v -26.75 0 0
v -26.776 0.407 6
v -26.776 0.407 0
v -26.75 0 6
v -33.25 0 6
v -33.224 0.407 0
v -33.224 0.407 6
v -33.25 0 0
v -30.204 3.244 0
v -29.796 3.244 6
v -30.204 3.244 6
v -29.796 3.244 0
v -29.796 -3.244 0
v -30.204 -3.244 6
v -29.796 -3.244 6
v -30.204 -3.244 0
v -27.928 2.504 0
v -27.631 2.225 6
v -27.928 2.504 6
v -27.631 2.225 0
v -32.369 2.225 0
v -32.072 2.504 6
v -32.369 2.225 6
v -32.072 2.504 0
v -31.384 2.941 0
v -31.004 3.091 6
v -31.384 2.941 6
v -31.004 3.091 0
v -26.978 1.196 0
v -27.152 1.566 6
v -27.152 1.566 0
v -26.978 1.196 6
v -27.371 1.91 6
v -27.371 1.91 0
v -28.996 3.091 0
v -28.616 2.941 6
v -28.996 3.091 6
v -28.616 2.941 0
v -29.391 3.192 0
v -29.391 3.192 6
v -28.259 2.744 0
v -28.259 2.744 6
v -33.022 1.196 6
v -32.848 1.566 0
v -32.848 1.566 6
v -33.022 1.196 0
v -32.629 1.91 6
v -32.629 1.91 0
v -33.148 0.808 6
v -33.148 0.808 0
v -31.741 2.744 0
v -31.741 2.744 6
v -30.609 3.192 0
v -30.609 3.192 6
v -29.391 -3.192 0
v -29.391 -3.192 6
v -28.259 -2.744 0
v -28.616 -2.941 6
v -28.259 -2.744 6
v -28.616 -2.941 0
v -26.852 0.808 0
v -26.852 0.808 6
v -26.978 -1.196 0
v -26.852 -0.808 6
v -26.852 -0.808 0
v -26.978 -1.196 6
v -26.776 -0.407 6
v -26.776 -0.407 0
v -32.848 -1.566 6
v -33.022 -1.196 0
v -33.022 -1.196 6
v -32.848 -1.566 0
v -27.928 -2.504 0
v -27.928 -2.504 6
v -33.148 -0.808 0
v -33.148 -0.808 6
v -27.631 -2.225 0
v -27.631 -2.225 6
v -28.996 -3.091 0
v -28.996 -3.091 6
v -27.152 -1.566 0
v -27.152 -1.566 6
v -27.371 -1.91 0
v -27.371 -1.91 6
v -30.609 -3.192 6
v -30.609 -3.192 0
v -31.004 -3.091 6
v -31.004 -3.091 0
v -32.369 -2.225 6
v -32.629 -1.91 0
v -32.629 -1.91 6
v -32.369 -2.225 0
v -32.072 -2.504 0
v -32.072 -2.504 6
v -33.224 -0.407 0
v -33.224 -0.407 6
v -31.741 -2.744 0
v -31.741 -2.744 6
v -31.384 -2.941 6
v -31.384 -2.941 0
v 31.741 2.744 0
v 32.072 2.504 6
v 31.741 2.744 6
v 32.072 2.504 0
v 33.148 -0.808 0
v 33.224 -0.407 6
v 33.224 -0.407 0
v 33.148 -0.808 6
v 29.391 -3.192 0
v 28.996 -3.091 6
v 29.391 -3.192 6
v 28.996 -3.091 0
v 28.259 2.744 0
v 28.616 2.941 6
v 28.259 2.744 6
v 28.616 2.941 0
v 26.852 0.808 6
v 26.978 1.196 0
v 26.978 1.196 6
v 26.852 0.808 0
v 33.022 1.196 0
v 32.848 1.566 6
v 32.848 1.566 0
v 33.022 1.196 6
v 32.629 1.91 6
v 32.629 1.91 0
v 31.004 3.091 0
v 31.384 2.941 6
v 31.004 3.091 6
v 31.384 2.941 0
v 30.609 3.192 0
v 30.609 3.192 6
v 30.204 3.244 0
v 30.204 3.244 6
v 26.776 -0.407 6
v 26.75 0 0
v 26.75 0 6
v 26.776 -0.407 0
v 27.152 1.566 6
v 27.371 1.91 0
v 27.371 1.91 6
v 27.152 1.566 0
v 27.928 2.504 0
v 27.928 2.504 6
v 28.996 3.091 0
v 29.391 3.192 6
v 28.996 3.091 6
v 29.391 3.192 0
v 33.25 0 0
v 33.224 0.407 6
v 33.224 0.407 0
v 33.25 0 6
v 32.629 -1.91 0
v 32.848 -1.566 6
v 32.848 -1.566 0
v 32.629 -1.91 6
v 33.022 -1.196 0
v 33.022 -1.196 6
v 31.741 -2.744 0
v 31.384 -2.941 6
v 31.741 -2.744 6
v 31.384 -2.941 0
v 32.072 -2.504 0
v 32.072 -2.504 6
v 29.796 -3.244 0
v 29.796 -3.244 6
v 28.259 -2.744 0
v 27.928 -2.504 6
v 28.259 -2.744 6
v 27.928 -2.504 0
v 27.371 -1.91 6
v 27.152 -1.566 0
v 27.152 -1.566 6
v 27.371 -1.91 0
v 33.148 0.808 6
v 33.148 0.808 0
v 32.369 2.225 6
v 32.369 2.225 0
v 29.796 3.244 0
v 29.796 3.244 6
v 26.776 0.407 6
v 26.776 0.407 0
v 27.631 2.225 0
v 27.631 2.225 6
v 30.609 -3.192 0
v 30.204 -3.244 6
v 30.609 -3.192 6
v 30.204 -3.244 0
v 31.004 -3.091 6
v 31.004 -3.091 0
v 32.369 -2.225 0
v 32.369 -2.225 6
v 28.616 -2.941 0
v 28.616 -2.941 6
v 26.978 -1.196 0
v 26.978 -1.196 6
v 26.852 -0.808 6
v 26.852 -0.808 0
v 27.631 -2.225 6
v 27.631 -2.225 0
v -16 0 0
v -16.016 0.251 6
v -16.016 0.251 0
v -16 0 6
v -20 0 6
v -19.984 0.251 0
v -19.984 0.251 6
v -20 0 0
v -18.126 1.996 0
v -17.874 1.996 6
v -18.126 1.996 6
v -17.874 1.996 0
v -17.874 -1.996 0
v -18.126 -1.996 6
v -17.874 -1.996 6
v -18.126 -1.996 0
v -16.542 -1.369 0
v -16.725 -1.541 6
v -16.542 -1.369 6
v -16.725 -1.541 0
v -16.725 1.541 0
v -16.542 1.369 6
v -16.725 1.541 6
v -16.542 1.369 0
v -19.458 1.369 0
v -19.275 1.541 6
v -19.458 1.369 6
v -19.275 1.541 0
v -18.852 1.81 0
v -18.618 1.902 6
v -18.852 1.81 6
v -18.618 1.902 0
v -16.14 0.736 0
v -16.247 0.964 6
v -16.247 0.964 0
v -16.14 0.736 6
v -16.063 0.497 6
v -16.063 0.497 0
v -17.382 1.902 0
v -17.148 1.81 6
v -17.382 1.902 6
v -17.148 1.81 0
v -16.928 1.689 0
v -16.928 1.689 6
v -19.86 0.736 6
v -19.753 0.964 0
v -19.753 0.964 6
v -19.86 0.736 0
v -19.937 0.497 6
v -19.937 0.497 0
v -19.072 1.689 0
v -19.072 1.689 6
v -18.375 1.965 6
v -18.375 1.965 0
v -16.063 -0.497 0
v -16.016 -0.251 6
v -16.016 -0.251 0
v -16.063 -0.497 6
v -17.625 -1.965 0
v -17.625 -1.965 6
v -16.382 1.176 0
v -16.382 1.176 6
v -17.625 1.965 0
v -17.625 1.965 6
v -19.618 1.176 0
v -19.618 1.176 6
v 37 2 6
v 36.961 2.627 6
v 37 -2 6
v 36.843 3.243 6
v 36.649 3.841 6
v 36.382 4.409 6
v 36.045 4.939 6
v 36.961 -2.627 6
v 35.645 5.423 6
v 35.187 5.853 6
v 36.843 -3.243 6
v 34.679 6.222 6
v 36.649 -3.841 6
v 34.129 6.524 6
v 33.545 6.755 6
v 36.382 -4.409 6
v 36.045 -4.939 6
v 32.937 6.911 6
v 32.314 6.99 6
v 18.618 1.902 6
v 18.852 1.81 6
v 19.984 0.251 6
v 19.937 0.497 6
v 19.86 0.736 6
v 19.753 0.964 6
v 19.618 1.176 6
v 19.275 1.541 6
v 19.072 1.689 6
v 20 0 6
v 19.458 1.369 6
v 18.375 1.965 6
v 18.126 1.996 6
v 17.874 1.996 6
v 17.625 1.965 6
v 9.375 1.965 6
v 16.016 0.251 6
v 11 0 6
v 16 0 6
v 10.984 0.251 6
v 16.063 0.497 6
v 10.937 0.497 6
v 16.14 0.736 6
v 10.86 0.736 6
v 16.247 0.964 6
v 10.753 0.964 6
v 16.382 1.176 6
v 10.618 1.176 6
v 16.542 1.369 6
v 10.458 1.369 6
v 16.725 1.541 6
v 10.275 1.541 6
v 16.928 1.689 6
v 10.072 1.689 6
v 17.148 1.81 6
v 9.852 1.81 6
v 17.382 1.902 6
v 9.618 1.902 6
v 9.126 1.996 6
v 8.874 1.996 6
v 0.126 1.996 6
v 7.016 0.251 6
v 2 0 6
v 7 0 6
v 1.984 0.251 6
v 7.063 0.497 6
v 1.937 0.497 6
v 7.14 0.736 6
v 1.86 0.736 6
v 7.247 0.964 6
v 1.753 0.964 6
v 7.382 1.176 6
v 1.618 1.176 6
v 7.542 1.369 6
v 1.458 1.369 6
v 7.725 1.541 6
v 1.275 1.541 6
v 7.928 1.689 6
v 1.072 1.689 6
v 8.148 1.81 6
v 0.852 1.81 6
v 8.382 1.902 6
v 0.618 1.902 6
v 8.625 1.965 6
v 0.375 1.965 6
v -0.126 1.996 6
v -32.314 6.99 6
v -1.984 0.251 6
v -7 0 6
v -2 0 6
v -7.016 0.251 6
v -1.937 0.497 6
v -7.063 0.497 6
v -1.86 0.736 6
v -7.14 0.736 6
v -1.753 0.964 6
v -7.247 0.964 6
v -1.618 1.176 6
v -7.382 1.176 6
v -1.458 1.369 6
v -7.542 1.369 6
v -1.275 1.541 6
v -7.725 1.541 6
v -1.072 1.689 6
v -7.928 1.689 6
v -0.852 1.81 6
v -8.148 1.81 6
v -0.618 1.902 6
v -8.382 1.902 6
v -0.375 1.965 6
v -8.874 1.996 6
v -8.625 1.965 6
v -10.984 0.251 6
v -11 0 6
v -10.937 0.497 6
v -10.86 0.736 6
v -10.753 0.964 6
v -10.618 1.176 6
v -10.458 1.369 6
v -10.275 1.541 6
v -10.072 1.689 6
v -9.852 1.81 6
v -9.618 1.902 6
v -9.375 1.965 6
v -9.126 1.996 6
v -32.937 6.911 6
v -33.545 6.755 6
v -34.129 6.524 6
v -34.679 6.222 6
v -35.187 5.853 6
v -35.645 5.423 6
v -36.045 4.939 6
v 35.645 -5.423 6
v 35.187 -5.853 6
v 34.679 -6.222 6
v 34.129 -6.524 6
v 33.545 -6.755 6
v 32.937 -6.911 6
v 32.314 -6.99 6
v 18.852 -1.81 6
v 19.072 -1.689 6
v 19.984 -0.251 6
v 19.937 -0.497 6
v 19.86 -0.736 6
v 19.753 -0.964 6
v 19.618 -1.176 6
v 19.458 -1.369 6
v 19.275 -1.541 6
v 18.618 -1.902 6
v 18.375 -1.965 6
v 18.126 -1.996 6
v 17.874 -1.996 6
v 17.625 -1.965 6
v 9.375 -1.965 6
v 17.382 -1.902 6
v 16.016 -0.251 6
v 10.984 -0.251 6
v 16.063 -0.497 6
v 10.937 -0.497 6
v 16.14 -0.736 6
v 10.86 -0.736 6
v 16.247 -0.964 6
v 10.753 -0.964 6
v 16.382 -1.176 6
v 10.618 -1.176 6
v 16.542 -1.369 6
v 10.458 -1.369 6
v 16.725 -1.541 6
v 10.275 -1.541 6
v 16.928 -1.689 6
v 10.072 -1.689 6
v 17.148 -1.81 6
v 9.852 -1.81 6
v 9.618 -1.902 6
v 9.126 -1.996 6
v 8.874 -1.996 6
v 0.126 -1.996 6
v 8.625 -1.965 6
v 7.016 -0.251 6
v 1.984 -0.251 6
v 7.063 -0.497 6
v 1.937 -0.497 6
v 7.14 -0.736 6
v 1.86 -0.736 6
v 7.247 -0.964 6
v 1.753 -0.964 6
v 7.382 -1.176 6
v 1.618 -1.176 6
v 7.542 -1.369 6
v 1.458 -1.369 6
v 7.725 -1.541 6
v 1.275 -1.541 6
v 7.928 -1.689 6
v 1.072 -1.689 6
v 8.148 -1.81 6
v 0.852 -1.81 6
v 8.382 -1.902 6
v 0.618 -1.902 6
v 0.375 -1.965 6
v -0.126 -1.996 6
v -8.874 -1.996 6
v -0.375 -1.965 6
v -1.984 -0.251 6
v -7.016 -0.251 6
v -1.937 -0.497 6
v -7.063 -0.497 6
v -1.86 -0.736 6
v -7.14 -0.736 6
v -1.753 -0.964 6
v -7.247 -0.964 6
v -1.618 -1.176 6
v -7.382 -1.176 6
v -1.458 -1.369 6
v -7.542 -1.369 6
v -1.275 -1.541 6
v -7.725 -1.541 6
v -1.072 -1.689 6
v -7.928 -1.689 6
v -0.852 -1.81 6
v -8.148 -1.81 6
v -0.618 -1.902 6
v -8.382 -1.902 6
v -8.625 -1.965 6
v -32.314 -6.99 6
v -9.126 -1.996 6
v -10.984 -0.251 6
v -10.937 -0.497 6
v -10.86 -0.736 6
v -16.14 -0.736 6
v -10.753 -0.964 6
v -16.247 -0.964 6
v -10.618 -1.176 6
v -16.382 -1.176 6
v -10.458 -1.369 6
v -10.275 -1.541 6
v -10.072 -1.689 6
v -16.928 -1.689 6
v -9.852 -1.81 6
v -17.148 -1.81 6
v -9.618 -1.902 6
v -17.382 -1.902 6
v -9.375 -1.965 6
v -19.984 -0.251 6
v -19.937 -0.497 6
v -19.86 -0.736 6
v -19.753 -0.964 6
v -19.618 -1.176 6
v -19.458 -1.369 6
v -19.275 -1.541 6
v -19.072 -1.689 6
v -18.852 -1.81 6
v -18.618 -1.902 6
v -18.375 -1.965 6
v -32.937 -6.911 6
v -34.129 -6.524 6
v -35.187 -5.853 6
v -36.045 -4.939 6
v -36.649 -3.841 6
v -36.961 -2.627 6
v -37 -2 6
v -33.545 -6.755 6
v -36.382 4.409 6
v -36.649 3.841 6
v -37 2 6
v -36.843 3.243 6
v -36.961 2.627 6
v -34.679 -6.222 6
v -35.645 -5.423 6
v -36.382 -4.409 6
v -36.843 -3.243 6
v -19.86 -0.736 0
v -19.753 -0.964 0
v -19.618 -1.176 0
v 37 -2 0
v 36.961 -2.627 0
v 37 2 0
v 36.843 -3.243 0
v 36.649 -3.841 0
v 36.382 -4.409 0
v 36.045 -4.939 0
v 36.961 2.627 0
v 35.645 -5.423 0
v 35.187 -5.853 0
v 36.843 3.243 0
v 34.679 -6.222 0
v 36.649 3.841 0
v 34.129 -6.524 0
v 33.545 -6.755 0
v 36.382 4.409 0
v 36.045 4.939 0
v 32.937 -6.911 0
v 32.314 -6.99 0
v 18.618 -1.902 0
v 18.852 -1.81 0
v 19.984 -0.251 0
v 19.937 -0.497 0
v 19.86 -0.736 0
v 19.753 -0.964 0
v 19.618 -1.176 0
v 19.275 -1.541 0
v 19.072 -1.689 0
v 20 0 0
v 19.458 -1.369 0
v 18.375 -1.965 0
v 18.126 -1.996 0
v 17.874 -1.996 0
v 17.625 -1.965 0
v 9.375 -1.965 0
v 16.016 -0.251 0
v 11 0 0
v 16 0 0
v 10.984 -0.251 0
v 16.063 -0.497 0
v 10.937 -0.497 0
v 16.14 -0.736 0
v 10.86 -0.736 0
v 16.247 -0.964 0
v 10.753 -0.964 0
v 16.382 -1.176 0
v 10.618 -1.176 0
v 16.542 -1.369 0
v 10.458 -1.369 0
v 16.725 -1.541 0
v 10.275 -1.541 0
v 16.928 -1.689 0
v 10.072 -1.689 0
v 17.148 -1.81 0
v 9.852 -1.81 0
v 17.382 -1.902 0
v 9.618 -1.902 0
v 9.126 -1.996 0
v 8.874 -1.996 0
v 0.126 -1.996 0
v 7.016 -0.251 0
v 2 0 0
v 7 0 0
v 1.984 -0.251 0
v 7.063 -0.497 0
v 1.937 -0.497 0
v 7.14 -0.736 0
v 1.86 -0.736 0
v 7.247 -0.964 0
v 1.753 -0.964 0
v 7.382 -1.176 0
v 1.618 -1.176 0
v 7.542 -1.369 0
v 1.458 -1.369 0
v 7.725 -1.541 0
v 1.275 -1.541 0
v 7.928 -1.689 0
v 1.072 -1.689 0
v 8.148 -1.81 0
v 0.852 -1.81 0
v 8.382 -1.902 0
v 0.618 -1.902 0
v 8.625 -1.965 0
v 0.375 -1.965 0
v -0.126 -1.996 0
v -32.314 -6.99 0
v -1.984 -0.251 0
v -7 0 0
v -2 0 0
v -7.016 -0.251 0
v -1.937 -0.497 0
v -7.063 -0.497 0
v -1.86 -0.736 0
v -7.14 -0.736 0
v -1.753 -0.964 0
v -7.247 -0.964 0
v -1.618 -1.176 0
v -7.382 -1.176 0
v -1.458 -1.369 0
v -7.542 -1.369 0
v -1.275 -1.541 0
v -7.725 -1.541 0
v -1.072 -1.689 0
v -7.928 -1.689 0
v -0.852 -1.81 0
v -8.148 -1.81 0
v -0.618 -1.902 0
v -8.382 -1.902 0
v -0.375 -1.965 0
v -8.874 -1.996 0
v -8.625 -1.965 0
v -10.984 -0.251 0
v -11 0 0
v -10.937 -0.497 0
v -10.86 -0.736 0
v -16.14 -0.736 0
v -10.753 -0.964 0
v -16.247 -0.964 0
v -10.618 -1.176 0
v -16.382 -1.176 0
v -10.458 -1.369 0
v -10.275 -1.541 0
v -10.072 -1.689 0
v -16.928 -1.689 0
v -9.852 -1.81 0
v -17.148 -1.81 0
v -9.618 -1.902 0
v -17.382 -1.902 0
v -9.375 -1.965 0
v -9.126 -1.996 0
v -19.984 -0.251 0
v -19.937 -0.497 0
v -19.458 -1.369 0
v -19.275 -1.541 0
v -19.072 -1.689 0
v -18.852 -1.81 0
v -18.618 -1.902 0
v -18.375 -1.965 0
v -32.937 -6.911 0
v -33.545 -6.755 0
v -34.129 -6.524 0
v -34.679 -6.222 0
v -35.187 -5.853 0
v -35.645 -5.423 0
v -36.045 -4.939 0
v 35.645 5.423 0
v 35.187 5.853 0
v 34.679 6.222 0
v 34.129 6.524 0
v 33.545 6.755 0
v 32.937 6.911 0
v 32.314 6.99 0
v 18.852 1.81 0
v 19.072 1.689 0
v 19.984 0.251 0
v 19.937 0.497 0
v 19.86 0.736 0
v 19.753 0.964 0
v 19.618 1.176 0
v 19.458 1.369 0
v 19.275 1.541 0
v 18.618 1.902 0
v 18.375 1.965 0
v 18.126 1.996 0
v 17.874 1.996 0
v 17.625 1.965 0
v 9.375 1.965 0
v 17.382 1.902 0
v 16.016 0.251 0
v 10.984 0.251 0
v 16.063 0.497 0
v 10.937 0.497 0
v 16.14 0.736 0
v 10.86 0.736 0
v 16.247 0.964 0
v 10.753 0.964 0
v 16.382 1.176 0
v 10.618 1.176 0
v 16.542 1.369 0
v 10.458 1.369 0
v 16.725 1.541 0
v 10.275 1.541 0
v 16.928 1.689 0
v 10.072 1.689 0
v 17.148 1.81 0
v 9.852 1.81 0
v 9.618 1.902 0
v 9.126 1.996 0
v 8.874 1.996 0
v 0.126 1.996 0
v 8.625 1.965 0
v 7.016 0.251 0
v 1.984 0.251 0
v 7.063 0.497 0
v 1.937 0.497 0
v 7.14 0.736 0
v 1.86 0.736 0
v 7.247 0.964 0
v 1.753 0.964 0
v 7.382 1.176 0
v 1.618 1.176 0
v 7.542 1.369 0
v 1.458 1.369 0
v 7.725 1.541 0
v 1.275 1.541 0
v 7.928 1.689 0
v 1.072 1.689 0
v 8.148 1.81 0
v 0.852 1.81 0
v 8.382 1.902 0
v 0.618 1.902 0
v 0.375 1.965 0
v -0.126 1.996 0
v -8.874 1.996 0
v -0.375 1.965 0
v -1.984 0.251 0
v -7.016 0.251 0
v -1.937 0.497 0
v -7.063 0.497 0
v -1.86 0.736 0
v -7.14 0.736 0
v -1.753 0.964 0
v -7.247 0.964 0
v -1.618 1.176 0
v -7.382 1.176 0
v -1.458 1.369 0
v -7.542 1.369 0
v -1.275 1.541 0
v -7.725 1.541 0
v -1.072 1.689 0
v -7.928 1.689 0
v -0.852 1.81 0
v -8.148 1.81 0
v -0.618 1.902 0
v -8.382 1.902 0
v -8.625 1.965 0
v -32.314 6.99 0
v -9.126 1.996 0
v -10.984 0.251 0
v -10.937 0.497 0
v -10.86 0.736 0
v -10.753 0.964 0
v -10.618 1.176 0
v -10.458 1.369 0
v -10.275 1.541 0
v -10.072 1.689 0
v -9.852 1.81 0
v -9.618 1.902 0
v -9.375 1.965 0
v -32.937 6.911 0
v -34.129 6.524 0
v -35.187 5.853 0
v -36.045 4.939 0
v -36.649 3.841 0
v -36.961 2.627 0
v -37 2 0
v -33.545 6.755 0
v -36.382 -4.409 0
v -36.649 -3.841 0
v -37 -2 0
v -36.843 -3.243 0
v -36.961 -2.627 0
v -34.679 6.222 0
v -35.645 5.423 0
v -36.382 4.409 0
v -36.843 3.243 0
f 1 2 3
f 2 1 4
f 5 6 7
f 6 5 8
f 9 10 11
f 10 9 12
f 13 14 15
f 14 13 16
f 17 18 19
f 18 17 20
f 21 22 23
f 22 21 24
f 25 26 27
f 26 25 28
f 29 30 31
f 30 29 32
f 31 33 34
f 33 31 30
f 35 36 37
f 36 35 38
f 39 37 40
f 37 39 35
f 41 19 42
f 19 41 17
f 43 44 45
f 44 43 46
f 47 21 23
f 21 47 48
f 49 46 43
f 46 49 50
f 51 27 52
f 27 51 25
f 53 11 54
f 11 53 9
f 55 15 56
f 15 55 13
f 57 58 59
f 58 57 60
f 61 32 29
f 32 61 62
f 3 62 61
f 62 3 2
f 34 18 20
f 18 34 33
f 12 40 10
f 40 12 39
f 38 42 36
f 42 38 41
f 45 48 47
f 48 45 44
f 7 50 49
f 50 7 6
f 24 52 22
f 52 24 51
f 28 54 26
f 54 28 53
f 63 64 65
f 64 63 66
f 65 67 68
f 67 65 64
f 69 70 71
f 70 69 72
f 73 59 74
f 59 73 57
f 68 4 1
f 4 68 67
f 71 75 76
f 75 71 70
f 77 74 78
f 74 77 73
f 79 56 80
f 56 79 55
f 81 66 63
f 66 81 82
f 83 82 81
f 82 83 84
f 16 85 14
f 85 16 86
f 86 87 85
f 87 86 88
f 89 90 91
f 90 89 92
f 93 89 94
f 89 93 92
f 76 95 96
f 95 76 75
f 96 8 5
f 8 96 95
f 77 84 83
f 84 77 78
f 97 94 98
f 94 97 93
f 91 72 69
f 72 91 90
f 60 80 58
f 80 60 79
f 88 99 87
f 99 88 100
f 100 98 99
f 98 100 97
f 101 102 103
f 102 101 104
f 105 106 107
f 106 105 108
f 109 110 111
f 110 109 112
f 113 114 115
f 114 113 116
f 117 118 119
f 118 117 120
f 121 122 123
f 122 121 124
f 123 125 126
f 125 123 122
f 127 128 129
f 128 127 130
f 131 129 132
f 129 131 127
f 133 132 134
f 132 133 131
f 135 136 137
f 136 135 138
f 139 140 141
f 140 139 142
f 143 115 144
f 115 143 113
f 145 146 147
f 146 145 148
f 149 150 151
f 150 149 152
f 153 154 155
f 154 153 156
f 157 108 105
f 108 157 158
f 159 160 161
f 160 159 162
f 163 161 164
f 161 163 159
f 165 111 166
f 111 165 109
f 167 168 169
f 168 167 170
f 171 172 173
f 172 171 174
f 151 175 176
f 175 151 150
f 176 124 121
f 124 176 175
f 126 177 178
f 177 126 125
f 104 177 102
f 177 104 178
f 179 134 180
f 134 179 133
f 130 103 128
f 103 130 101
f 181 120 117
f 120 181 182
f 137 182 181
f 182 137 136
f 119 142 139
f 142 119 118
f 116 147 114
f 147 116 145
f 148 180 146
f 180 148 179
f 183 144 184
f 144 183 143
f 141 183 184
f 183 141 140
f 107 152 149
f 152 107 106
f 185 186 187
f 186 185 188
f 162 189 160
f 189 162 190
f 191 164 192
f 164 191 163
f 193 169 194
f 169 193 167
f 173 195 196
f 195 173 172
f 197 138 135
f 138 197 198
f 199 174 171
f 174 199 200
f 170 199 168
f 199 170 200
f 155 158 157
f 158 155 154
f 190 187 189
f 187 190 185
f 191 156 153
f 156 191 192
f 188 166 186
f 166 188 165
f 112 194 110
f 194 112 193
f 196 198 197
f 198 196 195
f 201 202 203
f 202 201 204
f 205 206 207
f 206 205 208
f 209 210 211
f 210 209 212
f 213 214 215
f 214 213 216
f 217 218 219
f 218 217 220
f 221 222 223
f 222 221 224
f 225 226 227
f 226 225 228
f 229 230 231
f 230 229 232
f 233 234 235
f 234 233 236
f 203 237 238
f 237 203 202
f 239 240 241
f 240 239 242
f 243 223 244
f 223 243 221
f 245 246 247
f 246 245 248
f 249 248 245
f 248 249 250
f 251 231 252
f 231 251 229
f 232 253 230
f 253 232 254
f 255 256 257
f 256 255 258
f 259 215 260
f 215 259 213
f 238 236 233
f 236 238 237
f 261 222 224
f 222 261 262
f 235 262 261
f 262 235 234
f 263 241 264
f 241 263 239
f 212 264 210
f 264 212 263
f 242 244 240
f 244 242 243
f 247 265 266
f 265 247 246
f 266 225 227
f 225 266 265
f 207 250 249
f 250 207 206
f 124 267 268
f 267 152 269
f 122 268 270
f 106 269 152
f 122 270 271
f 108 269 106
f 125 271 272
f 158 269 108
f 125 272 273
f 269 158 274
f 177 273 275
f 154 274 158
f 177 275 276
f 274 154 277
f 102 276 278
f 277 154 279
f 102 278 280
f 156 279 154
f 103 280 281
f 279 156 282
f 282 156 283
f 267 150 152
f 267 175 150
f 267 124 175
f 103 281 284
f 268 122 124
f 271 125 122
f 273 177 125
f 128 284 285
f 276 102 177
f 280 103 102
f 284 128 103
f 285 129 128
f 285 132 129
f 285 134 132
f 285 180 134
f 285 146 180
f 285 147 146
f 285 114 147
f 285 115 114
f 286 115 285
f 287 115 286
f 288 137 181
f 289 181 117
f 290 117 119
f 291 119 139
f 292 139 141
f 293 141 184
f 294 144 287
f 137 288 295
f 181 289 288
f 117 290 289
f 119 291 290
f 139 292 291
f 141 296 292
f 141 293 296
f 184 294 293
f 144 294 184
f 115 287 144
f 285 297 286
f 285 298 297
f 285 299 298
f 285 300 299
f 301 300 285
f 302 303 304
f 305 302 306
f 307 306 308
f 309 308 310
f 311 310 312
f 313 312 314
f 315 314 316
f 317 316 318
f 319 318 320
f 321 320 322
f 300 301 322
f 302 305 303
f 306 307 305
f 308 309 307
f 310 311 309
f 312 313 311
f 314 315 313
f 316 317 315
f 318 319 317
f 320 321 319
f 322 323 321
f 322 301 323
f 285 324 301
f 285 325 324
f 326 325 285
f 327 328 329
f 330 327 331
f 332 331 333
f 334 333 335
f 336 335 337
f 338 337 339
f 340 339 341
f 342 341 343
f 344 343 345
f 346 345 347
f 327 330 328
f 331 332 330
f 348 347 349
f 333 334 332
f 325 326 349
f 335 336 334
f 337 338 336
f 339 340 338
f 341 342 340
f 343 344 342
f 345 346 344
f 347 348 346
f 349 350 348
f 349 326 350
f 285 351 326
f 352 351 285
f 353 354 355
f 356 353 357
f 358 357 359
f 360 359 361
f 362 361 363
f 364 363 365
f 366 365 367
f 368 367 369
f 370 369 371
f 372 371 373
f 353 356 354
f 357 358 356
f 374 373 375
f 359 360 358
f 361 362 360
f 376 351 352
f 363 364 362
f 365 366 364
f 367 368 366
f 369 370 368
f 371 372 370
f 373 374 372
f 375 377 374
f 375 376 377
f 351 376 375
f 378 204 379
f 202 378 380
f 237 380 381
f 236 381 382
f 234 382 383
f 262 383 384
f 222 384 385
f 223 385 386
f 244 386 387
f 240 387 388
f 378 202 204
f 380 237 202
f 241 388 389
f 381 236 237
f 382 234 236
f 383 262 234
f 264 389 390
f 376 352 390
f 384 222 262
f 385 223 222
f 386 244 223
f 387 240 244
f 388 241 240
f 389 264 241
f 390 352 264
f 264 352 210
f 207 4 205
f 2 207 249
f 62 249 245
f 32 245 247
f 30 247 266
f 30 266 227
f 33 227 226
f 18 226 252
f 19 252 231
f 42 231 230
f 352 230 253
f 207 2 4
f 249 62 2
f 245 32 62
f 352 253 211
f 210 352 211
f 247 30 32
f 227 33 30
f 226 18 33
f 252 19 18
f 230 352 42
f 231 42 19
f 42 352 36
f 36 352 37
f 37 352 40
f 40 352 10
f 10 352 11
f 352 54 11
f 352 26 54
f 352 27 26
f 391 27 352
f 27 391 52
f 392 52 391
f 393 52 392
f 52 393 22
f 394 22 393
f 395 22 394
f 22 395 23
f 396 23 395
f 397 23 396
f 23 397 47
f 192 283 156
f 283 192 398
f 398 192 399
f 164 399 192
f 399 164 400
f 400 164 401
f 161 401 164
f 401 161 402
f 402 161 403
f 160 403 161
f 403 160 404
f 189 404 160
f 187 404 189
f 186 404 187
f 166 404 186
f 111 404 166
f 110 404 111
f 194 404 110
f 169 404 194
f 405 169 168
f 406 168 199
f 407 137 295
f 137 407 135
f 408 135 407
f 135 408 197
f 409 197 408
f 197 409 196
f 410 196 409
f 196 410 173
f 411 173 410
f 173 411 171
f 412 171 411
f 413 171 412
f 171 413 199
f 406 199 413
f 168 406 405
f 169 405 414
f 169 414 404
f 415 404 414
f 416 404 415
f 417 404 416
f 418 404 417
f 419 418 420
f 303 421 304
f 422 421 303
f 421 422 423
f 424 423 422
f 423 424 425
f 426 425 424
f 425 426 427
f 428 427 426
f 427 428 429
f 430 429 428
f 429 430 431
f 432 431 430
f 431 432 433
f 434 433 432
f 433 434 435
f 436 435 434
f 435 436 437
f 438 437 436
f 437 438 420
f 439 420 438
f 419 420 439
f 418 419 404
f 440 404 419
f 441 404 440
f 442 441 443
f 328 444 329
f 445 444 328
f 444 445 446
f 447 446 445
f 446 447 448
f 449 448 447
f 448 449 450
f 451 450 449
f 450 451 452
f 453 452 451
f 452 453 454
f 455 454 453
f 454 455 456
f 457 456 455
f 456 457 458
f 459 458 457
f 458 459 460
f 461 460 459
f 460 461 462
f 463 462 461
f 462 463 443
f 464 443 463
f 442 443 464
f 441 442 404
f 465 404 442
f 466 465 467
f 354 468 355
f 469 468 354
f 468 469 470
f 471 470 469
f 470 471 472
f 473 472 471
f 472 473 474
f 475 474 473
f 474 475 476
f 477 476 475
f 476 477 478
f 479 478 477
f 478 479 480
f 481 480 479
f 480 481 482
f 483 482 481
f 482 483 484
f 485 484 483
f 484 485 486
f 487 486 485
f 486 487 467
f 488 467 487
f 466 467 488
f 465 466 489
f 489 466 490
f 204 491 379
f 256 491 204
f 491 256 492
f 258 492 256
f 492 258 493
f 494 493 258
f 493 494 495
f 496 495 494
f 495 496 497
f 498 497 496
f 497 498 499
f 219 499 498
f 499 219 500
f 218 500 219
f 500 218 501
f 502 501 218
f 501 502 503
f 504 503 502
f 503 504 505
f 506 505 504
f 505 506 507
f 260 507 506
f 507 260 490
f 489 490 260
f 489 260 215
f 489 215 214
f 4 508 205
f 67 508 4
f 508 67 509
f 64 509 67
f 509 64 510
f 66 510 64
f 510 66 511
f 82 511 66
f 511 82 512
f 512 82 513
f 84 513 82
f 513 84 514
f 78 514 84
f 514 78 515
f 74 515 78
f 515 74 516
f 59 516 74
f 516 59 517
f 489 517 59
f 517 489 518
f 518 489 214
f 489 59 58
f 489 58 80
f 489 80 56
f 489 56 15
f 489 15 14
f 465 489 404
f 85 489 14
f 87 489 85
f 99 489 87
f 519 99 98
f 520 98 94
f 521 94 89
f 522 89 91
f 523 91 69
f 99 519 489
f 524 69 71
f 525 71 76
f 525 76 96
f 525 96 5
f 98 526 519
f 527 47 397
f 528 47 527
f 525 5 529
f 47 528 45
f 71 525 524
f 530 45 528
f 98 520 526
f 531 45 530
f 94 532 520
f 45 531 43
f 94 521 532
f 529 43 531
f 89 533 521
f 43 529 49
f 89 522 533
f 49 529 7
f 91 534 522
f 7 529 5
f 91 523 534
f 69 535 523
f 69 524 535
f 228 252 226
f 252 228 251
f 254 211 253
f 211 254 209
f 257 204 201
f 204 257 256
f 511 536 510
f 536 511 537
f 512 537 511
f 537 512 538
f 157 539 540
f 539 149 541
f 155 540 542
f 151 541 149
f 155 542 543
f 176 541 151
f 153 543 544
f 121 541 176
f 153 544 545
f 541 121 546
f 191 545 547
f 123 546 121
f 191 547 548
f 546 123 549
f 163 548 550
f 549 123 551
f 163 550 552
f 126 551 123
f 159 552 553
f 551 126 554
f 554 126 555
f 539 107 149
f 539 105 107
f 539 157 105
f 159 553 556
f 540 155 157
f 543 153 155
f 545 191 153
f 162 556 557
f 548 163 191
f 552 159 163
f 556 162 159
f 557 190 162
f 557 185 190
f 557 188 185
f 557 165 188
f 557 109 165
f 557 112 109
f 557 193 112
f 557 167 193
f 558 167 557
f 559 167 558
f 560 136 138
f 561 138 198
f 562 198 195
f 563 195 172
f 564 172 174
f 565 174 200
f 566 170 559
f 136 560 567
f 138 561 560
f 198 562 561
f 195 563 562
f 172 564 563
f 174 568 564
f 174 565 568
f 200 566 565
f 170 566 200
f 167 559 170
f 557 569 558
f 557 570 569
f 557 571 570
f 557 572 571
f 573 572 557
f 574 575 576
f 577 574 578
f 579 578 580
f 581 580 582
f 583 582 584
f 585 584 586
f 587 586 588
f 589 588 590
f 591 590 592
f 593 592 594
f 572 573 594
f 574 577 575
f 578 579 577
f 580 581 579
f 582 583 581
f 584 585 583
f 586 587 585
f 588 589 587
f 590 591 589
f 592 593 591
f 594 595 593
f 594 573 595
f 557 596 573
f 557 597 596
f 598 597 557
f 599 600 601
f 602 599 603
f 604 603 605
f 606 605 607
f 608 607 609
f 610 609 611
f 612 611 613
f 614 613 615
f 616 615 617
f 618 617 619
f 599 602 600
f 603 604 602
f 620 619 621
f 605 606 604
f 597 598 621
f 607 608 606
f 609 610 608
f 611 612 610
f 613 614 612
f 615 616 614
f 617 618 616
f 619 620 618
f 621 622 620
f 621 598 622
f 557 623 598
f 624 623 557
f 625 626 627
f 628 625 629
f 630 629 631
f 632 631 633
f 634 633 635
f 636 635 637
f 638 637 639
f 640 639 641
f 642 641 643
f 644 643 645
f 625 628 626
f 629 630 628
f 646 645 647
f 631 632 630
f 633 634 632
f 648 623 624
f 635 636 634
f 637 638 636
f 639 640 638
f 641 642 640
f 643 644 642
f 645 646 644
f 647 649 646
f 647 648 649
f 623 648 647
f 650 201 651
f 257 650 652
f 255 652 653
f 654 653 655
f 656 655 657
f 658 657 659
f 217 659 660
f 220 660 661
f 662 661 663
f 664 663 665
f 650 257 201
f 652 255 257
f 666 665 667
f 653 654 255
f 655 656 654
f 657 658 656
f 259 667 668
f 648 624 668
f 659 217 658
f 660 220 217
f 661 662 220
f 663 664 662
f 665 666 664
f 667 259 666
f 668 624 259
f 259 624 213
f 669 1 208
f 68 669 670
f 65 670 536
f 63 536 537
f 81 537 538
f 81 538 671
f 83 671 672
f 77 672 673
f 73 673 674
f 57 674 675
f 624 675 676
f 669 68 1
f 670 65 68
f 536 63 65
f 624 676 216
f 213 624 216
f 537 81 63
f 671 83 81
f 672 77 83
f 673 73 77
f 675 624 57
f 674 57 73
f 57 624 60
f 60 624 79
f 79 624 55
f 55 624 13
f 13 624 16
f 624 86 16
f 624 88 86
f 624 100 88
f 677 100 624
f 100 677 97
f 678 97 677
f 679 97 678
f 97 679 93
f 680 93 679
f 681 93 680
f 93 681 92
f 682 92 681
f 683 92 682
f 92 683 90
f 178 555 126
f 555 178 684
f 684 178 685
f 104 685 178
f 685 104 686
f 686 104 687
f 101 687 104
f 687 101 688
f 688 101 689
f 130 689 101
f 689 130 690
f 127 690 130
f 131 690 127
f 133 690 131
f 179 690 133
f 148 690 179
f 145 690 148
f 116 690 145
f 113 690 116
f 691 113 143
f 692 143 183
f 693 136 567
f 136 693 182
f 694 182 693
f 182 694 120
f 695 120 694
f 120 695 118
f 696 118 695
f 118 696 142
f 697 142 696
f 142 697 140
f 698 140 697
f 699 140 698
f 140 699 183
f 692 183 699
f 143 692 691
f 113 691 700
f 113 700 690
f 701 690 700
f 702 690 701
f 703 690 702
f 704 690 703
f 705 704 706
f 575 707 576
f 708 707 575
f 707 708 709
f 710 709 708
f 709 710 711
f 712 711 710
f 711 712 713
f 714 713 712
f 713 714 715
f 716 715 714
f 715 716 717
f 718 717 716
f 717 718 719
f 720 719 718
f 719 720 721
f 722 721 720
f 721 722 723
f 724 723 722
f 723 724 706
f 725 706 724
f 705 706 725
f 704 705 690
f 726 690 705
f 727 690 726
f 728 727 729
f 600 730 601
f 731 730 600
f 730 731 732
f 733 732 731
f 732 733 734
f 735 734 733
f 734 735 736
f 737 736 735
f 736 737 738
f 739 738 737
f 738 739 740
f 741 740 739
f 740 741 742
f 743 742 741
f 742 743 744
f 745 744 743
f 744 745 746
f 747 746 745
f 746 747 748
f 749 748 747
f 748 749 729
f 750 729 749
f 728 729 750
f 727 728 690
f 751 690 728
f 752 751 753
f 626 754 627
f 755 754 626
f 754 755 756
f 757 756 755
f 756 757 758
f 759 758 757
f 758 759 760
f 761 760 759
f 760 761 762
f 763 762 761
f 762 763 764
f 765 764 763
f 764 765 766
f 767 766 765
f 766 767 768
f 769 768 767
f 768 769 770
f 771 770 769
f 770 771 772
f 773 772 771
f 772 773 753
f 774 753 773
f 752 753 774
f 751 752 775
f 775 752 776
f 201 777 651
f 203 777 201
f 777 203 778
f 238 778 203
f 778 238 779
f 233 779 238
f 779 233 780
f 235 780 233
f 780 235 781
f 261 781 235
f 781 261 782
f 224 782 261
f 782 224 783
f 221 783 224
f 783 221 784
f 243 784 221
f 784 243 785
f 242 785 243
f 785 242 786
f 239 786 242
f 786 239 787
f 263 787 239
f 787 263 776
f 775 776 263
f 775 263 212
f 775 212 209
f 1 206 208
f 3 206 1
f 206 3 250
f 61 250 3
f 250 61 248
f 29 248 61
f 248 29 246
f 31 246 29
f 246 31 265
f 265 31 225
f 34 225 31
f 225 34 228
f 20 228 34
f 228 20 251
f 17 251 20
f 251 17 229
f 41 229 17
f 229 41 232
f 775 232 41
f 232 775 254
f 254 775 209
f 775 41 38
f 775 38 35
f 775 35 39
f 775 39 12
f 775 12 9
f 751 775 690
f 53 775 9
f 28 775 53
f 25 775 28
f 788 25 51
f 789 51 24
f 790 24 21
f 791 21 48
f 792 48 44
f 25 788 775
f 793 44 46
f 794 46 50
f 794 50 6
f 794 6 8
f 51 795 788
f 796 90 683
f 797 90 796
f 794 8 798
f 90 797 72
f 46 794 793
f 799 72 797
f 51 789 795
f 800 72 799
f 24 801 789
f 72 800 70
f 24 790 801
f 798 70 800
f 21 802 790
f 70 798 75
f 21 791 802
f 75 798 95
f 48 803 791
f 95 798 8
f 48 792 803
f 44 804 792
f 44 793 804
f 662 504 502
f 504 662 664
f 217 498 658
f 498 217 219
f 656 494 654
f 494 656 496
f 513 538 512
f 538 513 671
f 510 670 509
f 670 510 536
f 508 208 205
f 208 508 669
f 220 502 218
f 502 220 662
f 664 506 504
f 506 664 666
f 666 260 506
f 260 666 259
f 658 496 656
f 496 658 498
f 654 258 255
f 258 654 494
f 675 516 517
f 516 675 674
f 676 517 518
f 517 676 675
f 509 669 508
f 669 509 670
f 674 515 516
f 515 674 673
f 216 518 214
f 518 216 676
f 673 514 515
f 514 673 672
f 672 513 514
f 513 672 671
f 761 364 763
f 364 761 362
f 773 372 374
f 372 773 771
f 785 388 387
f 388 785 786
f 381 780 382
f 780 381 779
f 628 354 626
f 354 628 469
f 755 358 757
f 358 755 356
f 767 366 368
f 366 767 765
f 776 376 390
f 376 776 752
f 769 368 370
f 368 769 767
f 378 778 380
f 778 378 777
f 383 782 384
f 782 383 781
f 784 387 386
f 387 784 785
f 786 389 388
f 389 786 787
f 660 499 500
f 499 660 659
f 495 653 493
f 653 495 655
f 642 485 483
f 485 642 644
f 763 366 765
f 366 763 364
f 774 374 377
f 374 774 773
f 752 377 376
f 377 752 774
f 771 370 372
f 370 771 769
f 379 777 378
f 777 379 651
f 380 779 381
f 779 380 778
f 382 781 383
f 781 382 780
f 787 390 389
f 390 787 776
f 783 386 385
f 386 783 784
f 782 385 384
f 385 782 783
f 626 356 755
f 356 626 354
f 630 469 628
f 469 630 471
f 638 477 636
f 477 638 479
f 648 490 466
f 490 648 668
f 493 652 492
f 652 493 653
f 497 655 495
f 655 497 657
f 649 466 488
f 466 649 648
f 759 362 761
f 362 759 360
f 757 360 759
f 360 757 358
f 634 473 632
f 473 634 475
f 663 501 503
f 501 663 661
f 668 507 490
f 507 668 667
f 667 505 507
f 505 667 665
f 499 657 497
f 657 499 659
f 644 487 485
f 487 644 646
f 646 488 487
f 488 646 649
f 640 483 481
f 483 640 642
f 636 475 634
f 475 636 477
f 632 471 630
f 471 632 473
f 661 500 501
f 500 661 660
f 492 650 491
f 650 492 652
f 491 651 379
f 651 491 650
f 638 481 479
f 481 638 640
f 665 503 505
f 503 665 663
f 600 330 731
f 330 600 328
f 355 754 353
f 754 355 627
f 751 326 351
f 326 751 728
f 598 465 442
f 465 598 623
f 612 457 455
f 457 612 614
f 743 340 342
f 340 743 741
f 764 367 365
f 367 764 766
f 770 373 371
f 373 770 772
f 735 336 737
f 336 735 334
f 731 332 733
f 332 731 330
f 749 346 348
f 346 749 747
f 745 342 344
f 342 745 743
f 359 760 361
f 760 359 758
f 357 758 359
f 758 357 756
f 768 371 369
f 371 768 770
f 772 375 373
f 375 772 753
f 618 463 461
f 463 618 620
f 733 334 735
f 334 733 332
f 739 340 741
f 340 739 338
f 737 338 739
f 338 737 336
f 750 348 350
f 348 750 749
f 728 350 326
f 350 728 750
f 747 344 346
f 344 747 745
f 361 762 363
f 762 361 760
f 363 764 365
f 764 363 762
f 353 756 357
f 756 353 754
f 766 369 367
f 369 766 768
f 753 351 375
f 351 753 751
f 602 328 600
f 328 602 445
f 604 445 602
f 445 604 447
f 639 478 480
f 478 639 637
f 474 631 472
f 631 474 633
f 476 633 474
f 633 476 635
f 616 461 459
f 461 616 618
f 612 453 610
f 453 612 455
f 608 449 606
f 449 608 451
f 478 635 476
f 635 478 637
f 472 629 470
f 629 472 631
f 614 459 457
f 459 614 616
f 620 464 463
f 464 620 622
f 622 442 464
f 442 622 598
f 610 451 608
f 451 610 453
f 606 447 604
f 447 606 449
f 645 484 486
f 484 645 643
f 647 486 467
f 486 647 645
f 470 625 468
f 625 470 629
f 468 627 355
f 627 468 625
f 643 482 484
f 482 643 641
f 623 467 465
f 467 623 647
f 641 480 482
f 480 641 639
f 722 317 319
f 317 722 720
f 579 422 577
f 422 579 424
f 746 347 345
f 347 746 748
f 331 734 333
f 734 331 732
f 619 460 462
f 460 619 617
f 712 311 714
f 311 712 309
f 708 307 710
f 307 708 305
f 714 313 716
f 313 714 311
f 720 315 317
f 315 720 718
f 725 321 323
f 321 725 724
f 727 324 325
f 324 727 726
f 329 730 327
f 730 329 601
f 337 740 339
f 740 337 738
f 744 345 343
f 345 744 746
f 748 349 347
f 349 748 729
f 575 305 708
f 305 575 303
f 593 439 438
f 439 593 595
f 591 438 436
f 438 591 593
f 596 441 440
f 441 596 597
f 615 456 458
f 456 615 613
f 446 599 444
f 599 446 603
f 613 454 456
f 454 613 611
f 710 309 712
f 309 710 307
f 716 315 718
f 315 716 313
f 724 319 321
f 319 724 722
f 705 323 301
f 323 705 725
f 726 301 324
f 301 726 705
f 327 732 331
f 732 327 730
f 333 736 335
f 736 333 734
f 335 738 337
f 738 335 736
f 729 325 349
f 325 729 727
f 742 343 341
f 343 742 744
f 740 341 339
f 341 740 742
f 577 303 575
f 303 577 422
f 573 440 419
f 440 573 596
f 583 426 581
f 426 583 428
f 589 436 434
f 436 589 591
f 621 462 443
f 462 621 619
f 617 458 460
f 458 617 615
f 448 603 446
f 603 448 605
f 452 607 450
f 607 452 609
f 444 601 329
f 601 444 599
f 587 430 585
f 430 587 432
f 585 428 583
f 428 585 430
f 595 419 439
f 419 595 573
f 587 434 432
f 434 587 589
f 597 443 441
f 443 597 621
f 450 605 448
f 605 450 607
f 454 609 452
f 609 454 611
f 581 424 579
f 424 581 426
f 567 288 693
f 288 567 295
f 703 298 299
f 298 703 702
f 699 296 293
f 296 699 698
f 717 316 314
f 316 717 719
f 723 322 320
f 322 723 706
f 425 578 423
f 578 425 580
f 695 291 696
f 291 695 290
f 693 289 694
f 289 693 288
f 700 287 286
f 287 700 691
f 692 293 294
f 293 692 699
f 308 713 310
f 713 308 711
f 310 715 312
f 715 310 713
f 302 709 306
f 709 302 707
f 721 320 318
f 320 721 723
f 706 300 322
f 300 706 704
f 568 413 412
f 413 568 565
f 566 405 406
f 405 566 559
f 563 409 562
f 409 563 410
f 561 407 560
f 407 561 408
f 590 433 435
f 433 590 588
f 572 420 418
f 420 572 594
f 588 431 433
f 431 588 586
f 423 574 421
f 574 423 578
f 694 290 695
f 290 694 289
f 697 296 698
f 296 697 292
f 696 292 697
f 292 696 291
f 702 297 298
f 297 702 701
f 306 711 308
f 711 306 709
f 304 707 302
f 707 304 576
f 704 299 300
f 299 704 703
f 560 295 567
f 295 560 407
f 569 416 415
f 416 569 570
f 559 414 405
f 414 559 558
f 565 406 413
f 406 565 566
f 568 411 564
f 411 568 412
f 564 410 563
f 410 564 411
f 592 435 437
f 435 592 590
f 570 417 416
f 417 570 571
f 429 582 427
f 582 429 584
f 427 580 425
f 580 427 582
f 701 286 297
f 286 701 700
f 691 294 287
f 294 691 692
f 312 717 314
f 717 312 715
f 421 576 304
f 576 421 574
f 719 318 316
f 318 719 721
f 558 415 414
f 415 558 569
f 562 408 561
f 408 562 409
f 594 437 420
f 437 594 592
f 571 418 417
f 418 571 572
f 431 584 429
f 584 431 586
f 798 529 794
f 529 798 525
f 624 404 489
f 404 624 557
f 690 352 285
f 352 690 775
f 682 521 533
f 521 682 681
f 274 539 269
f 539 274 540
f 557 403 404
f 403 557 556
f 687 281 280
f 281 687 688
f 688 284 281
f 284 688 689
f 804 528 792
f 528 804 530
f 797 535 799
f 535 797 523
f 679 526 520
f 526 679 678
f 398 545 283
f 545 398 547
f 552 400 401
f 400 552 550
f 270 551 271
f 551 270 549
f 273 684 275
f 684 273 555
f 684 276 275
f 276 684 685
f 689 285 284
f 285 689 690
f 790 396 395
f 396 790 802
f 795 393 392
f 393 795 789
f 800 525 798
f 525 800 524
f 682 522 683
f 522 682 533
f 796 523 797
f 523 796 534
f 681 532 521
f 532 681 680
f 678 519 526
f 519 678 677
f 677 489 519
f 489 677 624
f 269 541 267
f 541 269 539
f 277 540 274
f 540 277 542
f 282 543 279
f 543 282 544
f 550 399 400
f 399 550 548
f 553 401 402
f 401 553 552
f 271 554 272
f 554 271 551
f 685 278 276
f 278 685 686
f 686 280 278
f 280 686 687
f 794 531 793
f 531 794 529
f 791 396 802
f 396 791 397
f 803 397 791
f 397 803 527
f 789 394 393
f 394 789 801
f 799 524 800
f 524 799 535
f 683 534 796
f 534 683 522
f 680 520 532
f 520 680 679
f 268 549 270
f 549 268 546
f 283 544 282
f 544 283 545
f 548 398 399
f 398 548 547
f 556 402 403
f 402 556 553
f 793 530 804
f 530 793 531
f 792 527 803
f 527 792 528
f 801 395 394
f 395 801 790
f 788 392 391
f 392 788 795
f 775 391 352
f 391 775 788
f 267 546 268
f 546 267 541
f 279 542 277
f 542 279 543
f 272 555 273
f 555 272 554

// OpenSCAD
$fn = 50;


difference() {
	union() {
		hull() {
			translate(v = [-32.0000000000, 2.0000000000, 0]) {
				cylinder(h = 6, r = 5);
			}
			translate(v = [32.0000000000, 2.0000000000, 0]) {
				cylinder(h = 6, r = 5);
			}
			translate(v = [-32.0000000000, -2.0000000000, 0]) {
				cylinder(h = 6, r = 5);
			}
			translate(v = [32.0000000000, -2.0000000000, 0]) {
				cylinder(h = 6, r = 5);
			}
		}
	}
	union() {
		#translate(v = [-30.0000000000, 0.0000000000, 0]) {
			cylinder(h = 6, r = 3.2500000000);
		}
		#translate(v = [30.0000000000, 0.0000000000, 0]) {
			cylinder(h = 6, r = 3.2500000000);
		}
		#translate(v = [-30.0000000000, 0.0000000000, -100.0000000000]) {
			cylinder(h = 200, r = 3.2500000000);
		}
		#translate(v = [-30.0000000000, 0.0000000000, -100.0000000000]) {
			cylinder(h = 200, r = 3.2500000000);
		}
		#translate(v = [30.0000000000, 0.0000000000, -100.0000000000]) {
			cylinder(h = 200, r = 3.2500000000);
		}
		#translate(v = [30.0000000000, 0.0000000000, -100.0000000000]) {
			cylinder(h = 200, r = 3.2500000000);
		}
		#translate(v = [-30.0000000000, 0.0000000000, 0]) {
			cylinder(h = 6, r = 1.8000000000);
		}
		#translate(v = [30.0000000000, 0.0000000000, 0]) {
			cylinder(h = 6, r = 1.8000000000);
		}
		#translate(v = [-30.0000000000, 0.0000000000, 0]) {
			cylinder(h = 6, r = 1.8000000000);
		}
		#translate(v = [30.0000000000, 0.0000000000, 0]) {
			cylinder(h = 6, r = 1.8000000000);
		}
		#translate(v = [-30.0000000000, 0.0000000000, 0]) {
			cylinder(h = 6, r = 1.8000000000);
		}
		#translate(v = [30.0000000000, 0.0000000000, 0]) {
			cylinder(h = 6, r = 1.8000000000);
		}
		#translate(v = [-18.0000000000, 0, 0]) {
			cylinder(h = 6, r = 2.0000000000);
		}
		#translate(v = [-9.0000000000, 0, 0]) {
			cylinder(h = 6, r = 2.0000000000);
		}
		#cylinder(h = 6, r = 2.0000000000);
		#translate(v = [9.0000000000, 0, 0]) {
			cylinder(h = 6, r = 2.0000000000);
		}
		#translate(v = [18.0000000000, 0, 0]) {
			cylinder(h = 6, r = 2.0000000000);
		}
	}
}
